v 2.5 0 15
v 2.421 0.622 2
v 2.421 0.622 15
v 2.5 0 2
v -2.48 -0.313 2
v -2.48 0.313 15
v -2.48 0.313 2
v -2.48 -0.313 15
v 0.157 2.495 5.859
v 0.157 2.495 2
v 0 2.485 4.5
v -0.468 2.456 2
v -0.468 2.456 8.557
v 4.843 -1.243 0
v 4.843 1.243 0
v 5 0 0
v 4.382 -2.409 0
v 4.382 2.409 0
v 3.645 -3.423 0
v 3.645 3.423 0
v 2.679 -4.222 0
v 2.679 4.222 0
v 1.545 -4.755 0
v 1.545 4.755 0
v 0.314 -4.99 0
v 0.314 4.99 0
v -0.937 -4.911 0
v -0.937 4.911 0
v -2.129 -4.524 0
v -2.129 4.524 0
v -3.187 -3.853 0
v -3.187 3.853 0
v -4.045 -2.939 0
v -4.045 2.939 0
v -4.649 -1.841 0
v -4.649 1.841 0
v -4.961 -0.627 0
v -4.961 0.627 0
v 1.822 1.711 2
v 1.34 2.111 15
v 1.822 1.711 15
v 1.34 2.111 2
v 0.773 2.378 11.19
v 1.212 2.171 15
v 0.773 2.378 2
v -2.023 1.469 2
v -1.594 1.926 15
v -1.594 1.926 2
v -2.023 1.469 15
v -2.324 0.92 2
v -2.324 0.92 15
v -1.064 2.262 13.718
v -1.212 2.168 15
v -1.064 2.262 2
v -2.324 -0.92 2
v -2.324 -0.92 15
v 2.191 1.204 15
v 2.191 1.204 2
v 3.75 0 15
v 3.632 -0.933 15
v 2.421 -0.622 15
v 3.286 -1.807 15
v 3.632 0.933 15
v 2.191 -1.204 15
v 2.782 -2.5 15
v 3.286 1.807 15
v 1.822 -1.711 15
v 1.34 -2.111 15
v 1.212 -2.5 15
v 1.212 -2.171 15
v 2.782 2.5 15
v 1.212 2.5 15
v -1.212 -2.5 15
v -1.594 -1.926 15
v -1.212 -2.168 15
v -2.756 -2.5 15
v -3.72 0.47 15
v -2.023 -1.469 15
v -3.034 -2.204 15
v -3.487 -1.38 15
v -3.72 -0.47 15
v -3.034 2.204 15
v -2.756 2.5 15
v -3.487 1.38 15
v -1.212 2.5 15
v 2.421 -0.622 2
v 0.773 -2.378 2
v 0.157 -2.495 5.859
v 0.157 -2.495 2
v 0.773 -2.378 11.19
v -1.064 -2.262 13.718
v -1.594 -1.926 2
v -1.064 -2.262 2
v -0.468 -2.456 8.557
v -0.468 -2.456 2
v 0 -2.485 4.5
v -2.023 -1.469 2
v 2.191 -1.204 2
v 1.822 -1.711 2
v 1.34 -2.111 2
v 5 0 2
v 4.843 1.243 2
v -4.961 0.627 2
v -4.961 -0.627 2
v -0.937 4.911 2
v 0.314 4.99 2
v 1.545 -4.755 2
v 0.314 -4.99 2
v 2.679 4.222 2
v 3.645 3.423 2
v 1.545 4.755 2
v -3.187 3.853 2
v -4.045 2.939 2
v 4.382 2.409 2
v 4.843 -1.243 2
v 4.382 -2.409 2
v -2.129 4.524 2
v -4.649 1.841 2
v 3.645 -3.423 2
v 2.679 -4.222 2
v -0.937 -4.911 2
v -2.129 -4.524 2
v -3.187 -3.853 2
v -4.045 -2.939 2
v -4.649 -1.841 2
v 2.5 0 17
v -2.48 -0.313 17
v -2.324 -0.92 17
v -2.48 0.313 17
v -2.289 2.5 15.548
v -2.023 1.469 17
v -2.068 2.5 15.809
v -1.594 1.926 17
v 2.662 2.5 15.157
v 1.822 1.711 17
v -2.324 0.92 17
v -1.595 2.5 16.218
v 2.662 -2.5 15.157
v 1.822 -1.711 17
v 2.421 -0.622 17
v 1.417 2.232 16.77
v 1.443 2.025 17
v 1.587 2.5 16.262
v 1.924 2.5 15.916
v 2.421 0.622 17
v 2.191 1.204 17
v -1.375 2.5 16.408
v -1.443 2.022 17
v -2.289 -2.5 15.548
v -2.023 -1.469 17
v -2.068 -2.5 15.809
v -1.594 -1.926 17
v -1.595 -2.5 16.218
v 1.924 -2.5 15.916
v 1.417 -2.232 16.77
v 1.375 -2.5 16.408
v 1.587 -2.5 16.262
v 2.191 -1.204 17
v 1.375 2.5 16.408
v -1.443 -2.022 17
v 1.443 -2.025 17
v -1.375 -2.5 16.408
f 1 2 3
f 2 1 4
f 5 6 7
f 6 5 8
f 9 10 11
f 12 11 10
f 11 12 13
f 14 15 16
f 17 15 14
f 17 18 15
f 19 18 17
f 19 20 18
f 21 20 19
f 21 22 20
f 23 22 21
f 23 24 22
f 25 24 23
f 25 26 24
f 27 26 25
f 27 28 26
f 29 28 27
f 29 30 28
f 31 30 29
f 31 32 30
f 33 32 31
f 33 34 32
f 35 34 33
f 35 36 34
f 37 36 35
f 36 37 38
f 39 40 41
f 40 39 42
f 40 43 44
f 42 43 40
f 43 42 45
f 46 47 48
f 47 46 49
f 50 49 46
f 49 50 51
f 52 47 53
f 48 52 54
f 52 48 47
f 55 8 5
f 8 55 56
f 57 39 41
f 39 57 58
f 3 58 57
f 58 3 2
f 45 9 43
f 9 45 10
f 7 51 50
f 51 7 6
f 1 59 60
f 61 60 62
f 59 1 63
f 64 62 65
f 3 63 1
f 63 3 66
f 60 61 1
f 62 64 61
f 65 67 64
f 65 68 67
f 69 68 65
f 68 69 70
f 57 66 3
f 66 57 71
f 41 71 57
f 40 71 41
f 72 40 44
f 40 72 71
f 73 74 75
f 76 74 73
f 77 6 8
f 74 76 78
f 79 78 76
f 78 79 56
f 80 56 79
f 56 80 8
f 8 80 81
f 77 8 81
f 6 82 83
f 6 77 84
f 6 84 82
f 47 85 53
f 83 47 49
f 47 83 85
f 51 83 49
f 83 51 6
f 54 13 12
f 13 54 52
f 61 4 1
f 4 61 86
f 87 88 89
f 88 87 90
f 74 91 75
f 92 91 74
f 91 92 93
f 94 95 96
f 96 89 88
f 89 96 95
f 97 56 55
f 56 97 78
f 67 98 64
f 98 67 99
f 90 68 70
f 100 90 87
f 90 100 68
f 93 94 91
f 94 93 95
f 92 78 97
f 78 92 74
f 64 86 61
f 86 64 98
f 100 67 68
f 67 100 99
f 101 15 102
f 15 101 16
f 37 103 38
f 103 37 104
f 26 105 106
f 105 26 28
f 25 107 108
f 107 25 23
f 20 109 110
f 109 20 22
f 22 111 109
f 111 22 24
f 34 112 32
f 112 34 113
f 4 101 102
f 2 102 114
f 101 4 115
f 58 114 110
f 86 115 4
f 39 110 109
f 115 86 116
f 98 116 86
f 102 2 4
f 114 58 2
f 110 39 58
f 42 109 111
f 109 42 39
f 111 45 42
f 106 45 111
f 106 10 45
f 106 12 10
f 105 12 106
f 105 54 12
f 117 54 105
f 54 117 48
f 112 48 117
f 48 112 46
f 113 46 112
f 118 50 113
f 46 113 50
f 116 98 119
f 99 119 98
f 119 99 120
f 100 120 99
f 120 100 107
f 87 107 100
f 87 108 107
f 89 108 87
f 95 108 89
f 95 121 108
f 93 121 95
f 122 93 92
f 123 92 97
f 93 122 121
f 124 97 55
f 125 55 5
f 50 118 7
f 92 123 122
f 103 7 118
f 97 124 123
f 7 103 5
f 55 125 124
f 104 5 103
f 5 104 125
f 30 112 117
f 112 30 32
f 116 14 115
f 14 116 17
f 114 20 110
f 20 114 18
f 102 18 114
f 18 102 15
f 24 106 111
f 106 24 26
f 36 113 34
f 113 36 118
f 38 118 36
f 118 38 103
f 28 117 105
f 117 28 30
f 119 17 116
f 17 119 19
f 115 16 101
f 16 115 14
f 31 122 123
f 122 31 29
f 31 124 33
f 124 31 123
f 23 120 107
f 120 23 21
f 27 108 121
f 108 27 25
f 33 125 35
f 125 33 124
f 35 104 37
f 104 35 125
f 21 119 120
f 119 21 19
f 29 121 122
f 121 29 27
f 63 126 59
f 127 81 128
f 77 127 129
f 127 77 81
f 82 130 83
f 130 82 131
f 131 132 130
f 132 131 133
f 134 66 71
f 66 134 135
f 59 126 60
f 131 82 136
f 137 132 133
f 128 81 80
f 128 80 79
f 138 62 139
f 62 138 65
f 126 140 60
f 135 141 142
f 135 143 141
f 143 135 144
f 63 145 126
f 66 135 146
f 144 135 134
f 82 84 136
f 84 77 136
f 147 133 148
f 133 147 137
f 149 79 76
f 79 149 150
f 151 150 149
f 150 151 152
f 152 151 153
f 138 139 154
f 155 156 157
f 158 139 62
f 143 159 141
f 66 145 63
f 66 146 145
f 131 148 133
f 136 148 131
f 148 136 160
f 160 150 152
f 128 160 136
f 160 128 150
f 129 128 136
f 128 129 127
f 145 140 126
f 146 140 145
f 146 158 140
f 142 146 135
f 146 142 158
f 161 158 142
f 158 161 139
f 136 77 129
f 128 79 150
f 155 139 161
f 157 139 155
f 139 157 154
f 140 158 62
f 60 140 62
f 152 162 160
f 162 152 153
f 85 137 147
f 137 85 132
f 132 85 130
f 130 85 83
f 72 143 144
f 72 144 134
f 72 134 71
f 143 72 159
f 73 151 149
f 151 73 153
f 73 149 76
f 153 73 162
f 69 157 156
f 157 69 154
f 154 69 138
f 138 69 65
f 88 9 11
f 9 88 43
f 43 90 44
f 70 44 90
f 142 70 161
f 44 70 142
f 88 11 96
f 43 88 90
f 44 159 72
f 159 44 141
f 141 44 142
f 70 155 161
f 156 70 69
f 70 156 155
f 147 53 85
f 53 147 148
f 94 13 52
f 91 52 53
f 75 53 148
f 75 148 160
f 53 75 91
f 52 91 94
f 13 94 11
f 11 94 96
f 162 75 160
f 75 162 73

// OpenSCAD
quality=25;

pin_radius=2.5;
pin_length=15;

backing_thickness=2;



difference()
{
    union()
    {
        cylinder(r=pin_radius,h=pin_length,$fn=quality);
        cylinder(r=pin_radius*2,h=backing_thickness,$fn=quality);
        
        //bell clip
        translate([0,0,pin_length]) cylinder(r1=pin_radius*1.5,r2=pin_radius,h=backing_thickness,$fn=quality);
    }
    union()
    {
        translate([0,pin_radius*1.5,pin_length+backing_thickness]) scale([1,1,5]) rotate([90,90,0]) cylinder(r=pin_radius,h=pin_radius*3,$fn=3);
        rotate([0,0,90]) union()
        {
            translate([pin_radius,-pin_radius*1.5,pin_length]) cube([pin_radius,pin_radius*3,pin_radius]);
            rotate([0,0,180]) translate([pin_radius,-pin_radius*1.5,pin_length]) cube([pin_radius,pin_radius*3,pin_radius]);
        }
    }
}
